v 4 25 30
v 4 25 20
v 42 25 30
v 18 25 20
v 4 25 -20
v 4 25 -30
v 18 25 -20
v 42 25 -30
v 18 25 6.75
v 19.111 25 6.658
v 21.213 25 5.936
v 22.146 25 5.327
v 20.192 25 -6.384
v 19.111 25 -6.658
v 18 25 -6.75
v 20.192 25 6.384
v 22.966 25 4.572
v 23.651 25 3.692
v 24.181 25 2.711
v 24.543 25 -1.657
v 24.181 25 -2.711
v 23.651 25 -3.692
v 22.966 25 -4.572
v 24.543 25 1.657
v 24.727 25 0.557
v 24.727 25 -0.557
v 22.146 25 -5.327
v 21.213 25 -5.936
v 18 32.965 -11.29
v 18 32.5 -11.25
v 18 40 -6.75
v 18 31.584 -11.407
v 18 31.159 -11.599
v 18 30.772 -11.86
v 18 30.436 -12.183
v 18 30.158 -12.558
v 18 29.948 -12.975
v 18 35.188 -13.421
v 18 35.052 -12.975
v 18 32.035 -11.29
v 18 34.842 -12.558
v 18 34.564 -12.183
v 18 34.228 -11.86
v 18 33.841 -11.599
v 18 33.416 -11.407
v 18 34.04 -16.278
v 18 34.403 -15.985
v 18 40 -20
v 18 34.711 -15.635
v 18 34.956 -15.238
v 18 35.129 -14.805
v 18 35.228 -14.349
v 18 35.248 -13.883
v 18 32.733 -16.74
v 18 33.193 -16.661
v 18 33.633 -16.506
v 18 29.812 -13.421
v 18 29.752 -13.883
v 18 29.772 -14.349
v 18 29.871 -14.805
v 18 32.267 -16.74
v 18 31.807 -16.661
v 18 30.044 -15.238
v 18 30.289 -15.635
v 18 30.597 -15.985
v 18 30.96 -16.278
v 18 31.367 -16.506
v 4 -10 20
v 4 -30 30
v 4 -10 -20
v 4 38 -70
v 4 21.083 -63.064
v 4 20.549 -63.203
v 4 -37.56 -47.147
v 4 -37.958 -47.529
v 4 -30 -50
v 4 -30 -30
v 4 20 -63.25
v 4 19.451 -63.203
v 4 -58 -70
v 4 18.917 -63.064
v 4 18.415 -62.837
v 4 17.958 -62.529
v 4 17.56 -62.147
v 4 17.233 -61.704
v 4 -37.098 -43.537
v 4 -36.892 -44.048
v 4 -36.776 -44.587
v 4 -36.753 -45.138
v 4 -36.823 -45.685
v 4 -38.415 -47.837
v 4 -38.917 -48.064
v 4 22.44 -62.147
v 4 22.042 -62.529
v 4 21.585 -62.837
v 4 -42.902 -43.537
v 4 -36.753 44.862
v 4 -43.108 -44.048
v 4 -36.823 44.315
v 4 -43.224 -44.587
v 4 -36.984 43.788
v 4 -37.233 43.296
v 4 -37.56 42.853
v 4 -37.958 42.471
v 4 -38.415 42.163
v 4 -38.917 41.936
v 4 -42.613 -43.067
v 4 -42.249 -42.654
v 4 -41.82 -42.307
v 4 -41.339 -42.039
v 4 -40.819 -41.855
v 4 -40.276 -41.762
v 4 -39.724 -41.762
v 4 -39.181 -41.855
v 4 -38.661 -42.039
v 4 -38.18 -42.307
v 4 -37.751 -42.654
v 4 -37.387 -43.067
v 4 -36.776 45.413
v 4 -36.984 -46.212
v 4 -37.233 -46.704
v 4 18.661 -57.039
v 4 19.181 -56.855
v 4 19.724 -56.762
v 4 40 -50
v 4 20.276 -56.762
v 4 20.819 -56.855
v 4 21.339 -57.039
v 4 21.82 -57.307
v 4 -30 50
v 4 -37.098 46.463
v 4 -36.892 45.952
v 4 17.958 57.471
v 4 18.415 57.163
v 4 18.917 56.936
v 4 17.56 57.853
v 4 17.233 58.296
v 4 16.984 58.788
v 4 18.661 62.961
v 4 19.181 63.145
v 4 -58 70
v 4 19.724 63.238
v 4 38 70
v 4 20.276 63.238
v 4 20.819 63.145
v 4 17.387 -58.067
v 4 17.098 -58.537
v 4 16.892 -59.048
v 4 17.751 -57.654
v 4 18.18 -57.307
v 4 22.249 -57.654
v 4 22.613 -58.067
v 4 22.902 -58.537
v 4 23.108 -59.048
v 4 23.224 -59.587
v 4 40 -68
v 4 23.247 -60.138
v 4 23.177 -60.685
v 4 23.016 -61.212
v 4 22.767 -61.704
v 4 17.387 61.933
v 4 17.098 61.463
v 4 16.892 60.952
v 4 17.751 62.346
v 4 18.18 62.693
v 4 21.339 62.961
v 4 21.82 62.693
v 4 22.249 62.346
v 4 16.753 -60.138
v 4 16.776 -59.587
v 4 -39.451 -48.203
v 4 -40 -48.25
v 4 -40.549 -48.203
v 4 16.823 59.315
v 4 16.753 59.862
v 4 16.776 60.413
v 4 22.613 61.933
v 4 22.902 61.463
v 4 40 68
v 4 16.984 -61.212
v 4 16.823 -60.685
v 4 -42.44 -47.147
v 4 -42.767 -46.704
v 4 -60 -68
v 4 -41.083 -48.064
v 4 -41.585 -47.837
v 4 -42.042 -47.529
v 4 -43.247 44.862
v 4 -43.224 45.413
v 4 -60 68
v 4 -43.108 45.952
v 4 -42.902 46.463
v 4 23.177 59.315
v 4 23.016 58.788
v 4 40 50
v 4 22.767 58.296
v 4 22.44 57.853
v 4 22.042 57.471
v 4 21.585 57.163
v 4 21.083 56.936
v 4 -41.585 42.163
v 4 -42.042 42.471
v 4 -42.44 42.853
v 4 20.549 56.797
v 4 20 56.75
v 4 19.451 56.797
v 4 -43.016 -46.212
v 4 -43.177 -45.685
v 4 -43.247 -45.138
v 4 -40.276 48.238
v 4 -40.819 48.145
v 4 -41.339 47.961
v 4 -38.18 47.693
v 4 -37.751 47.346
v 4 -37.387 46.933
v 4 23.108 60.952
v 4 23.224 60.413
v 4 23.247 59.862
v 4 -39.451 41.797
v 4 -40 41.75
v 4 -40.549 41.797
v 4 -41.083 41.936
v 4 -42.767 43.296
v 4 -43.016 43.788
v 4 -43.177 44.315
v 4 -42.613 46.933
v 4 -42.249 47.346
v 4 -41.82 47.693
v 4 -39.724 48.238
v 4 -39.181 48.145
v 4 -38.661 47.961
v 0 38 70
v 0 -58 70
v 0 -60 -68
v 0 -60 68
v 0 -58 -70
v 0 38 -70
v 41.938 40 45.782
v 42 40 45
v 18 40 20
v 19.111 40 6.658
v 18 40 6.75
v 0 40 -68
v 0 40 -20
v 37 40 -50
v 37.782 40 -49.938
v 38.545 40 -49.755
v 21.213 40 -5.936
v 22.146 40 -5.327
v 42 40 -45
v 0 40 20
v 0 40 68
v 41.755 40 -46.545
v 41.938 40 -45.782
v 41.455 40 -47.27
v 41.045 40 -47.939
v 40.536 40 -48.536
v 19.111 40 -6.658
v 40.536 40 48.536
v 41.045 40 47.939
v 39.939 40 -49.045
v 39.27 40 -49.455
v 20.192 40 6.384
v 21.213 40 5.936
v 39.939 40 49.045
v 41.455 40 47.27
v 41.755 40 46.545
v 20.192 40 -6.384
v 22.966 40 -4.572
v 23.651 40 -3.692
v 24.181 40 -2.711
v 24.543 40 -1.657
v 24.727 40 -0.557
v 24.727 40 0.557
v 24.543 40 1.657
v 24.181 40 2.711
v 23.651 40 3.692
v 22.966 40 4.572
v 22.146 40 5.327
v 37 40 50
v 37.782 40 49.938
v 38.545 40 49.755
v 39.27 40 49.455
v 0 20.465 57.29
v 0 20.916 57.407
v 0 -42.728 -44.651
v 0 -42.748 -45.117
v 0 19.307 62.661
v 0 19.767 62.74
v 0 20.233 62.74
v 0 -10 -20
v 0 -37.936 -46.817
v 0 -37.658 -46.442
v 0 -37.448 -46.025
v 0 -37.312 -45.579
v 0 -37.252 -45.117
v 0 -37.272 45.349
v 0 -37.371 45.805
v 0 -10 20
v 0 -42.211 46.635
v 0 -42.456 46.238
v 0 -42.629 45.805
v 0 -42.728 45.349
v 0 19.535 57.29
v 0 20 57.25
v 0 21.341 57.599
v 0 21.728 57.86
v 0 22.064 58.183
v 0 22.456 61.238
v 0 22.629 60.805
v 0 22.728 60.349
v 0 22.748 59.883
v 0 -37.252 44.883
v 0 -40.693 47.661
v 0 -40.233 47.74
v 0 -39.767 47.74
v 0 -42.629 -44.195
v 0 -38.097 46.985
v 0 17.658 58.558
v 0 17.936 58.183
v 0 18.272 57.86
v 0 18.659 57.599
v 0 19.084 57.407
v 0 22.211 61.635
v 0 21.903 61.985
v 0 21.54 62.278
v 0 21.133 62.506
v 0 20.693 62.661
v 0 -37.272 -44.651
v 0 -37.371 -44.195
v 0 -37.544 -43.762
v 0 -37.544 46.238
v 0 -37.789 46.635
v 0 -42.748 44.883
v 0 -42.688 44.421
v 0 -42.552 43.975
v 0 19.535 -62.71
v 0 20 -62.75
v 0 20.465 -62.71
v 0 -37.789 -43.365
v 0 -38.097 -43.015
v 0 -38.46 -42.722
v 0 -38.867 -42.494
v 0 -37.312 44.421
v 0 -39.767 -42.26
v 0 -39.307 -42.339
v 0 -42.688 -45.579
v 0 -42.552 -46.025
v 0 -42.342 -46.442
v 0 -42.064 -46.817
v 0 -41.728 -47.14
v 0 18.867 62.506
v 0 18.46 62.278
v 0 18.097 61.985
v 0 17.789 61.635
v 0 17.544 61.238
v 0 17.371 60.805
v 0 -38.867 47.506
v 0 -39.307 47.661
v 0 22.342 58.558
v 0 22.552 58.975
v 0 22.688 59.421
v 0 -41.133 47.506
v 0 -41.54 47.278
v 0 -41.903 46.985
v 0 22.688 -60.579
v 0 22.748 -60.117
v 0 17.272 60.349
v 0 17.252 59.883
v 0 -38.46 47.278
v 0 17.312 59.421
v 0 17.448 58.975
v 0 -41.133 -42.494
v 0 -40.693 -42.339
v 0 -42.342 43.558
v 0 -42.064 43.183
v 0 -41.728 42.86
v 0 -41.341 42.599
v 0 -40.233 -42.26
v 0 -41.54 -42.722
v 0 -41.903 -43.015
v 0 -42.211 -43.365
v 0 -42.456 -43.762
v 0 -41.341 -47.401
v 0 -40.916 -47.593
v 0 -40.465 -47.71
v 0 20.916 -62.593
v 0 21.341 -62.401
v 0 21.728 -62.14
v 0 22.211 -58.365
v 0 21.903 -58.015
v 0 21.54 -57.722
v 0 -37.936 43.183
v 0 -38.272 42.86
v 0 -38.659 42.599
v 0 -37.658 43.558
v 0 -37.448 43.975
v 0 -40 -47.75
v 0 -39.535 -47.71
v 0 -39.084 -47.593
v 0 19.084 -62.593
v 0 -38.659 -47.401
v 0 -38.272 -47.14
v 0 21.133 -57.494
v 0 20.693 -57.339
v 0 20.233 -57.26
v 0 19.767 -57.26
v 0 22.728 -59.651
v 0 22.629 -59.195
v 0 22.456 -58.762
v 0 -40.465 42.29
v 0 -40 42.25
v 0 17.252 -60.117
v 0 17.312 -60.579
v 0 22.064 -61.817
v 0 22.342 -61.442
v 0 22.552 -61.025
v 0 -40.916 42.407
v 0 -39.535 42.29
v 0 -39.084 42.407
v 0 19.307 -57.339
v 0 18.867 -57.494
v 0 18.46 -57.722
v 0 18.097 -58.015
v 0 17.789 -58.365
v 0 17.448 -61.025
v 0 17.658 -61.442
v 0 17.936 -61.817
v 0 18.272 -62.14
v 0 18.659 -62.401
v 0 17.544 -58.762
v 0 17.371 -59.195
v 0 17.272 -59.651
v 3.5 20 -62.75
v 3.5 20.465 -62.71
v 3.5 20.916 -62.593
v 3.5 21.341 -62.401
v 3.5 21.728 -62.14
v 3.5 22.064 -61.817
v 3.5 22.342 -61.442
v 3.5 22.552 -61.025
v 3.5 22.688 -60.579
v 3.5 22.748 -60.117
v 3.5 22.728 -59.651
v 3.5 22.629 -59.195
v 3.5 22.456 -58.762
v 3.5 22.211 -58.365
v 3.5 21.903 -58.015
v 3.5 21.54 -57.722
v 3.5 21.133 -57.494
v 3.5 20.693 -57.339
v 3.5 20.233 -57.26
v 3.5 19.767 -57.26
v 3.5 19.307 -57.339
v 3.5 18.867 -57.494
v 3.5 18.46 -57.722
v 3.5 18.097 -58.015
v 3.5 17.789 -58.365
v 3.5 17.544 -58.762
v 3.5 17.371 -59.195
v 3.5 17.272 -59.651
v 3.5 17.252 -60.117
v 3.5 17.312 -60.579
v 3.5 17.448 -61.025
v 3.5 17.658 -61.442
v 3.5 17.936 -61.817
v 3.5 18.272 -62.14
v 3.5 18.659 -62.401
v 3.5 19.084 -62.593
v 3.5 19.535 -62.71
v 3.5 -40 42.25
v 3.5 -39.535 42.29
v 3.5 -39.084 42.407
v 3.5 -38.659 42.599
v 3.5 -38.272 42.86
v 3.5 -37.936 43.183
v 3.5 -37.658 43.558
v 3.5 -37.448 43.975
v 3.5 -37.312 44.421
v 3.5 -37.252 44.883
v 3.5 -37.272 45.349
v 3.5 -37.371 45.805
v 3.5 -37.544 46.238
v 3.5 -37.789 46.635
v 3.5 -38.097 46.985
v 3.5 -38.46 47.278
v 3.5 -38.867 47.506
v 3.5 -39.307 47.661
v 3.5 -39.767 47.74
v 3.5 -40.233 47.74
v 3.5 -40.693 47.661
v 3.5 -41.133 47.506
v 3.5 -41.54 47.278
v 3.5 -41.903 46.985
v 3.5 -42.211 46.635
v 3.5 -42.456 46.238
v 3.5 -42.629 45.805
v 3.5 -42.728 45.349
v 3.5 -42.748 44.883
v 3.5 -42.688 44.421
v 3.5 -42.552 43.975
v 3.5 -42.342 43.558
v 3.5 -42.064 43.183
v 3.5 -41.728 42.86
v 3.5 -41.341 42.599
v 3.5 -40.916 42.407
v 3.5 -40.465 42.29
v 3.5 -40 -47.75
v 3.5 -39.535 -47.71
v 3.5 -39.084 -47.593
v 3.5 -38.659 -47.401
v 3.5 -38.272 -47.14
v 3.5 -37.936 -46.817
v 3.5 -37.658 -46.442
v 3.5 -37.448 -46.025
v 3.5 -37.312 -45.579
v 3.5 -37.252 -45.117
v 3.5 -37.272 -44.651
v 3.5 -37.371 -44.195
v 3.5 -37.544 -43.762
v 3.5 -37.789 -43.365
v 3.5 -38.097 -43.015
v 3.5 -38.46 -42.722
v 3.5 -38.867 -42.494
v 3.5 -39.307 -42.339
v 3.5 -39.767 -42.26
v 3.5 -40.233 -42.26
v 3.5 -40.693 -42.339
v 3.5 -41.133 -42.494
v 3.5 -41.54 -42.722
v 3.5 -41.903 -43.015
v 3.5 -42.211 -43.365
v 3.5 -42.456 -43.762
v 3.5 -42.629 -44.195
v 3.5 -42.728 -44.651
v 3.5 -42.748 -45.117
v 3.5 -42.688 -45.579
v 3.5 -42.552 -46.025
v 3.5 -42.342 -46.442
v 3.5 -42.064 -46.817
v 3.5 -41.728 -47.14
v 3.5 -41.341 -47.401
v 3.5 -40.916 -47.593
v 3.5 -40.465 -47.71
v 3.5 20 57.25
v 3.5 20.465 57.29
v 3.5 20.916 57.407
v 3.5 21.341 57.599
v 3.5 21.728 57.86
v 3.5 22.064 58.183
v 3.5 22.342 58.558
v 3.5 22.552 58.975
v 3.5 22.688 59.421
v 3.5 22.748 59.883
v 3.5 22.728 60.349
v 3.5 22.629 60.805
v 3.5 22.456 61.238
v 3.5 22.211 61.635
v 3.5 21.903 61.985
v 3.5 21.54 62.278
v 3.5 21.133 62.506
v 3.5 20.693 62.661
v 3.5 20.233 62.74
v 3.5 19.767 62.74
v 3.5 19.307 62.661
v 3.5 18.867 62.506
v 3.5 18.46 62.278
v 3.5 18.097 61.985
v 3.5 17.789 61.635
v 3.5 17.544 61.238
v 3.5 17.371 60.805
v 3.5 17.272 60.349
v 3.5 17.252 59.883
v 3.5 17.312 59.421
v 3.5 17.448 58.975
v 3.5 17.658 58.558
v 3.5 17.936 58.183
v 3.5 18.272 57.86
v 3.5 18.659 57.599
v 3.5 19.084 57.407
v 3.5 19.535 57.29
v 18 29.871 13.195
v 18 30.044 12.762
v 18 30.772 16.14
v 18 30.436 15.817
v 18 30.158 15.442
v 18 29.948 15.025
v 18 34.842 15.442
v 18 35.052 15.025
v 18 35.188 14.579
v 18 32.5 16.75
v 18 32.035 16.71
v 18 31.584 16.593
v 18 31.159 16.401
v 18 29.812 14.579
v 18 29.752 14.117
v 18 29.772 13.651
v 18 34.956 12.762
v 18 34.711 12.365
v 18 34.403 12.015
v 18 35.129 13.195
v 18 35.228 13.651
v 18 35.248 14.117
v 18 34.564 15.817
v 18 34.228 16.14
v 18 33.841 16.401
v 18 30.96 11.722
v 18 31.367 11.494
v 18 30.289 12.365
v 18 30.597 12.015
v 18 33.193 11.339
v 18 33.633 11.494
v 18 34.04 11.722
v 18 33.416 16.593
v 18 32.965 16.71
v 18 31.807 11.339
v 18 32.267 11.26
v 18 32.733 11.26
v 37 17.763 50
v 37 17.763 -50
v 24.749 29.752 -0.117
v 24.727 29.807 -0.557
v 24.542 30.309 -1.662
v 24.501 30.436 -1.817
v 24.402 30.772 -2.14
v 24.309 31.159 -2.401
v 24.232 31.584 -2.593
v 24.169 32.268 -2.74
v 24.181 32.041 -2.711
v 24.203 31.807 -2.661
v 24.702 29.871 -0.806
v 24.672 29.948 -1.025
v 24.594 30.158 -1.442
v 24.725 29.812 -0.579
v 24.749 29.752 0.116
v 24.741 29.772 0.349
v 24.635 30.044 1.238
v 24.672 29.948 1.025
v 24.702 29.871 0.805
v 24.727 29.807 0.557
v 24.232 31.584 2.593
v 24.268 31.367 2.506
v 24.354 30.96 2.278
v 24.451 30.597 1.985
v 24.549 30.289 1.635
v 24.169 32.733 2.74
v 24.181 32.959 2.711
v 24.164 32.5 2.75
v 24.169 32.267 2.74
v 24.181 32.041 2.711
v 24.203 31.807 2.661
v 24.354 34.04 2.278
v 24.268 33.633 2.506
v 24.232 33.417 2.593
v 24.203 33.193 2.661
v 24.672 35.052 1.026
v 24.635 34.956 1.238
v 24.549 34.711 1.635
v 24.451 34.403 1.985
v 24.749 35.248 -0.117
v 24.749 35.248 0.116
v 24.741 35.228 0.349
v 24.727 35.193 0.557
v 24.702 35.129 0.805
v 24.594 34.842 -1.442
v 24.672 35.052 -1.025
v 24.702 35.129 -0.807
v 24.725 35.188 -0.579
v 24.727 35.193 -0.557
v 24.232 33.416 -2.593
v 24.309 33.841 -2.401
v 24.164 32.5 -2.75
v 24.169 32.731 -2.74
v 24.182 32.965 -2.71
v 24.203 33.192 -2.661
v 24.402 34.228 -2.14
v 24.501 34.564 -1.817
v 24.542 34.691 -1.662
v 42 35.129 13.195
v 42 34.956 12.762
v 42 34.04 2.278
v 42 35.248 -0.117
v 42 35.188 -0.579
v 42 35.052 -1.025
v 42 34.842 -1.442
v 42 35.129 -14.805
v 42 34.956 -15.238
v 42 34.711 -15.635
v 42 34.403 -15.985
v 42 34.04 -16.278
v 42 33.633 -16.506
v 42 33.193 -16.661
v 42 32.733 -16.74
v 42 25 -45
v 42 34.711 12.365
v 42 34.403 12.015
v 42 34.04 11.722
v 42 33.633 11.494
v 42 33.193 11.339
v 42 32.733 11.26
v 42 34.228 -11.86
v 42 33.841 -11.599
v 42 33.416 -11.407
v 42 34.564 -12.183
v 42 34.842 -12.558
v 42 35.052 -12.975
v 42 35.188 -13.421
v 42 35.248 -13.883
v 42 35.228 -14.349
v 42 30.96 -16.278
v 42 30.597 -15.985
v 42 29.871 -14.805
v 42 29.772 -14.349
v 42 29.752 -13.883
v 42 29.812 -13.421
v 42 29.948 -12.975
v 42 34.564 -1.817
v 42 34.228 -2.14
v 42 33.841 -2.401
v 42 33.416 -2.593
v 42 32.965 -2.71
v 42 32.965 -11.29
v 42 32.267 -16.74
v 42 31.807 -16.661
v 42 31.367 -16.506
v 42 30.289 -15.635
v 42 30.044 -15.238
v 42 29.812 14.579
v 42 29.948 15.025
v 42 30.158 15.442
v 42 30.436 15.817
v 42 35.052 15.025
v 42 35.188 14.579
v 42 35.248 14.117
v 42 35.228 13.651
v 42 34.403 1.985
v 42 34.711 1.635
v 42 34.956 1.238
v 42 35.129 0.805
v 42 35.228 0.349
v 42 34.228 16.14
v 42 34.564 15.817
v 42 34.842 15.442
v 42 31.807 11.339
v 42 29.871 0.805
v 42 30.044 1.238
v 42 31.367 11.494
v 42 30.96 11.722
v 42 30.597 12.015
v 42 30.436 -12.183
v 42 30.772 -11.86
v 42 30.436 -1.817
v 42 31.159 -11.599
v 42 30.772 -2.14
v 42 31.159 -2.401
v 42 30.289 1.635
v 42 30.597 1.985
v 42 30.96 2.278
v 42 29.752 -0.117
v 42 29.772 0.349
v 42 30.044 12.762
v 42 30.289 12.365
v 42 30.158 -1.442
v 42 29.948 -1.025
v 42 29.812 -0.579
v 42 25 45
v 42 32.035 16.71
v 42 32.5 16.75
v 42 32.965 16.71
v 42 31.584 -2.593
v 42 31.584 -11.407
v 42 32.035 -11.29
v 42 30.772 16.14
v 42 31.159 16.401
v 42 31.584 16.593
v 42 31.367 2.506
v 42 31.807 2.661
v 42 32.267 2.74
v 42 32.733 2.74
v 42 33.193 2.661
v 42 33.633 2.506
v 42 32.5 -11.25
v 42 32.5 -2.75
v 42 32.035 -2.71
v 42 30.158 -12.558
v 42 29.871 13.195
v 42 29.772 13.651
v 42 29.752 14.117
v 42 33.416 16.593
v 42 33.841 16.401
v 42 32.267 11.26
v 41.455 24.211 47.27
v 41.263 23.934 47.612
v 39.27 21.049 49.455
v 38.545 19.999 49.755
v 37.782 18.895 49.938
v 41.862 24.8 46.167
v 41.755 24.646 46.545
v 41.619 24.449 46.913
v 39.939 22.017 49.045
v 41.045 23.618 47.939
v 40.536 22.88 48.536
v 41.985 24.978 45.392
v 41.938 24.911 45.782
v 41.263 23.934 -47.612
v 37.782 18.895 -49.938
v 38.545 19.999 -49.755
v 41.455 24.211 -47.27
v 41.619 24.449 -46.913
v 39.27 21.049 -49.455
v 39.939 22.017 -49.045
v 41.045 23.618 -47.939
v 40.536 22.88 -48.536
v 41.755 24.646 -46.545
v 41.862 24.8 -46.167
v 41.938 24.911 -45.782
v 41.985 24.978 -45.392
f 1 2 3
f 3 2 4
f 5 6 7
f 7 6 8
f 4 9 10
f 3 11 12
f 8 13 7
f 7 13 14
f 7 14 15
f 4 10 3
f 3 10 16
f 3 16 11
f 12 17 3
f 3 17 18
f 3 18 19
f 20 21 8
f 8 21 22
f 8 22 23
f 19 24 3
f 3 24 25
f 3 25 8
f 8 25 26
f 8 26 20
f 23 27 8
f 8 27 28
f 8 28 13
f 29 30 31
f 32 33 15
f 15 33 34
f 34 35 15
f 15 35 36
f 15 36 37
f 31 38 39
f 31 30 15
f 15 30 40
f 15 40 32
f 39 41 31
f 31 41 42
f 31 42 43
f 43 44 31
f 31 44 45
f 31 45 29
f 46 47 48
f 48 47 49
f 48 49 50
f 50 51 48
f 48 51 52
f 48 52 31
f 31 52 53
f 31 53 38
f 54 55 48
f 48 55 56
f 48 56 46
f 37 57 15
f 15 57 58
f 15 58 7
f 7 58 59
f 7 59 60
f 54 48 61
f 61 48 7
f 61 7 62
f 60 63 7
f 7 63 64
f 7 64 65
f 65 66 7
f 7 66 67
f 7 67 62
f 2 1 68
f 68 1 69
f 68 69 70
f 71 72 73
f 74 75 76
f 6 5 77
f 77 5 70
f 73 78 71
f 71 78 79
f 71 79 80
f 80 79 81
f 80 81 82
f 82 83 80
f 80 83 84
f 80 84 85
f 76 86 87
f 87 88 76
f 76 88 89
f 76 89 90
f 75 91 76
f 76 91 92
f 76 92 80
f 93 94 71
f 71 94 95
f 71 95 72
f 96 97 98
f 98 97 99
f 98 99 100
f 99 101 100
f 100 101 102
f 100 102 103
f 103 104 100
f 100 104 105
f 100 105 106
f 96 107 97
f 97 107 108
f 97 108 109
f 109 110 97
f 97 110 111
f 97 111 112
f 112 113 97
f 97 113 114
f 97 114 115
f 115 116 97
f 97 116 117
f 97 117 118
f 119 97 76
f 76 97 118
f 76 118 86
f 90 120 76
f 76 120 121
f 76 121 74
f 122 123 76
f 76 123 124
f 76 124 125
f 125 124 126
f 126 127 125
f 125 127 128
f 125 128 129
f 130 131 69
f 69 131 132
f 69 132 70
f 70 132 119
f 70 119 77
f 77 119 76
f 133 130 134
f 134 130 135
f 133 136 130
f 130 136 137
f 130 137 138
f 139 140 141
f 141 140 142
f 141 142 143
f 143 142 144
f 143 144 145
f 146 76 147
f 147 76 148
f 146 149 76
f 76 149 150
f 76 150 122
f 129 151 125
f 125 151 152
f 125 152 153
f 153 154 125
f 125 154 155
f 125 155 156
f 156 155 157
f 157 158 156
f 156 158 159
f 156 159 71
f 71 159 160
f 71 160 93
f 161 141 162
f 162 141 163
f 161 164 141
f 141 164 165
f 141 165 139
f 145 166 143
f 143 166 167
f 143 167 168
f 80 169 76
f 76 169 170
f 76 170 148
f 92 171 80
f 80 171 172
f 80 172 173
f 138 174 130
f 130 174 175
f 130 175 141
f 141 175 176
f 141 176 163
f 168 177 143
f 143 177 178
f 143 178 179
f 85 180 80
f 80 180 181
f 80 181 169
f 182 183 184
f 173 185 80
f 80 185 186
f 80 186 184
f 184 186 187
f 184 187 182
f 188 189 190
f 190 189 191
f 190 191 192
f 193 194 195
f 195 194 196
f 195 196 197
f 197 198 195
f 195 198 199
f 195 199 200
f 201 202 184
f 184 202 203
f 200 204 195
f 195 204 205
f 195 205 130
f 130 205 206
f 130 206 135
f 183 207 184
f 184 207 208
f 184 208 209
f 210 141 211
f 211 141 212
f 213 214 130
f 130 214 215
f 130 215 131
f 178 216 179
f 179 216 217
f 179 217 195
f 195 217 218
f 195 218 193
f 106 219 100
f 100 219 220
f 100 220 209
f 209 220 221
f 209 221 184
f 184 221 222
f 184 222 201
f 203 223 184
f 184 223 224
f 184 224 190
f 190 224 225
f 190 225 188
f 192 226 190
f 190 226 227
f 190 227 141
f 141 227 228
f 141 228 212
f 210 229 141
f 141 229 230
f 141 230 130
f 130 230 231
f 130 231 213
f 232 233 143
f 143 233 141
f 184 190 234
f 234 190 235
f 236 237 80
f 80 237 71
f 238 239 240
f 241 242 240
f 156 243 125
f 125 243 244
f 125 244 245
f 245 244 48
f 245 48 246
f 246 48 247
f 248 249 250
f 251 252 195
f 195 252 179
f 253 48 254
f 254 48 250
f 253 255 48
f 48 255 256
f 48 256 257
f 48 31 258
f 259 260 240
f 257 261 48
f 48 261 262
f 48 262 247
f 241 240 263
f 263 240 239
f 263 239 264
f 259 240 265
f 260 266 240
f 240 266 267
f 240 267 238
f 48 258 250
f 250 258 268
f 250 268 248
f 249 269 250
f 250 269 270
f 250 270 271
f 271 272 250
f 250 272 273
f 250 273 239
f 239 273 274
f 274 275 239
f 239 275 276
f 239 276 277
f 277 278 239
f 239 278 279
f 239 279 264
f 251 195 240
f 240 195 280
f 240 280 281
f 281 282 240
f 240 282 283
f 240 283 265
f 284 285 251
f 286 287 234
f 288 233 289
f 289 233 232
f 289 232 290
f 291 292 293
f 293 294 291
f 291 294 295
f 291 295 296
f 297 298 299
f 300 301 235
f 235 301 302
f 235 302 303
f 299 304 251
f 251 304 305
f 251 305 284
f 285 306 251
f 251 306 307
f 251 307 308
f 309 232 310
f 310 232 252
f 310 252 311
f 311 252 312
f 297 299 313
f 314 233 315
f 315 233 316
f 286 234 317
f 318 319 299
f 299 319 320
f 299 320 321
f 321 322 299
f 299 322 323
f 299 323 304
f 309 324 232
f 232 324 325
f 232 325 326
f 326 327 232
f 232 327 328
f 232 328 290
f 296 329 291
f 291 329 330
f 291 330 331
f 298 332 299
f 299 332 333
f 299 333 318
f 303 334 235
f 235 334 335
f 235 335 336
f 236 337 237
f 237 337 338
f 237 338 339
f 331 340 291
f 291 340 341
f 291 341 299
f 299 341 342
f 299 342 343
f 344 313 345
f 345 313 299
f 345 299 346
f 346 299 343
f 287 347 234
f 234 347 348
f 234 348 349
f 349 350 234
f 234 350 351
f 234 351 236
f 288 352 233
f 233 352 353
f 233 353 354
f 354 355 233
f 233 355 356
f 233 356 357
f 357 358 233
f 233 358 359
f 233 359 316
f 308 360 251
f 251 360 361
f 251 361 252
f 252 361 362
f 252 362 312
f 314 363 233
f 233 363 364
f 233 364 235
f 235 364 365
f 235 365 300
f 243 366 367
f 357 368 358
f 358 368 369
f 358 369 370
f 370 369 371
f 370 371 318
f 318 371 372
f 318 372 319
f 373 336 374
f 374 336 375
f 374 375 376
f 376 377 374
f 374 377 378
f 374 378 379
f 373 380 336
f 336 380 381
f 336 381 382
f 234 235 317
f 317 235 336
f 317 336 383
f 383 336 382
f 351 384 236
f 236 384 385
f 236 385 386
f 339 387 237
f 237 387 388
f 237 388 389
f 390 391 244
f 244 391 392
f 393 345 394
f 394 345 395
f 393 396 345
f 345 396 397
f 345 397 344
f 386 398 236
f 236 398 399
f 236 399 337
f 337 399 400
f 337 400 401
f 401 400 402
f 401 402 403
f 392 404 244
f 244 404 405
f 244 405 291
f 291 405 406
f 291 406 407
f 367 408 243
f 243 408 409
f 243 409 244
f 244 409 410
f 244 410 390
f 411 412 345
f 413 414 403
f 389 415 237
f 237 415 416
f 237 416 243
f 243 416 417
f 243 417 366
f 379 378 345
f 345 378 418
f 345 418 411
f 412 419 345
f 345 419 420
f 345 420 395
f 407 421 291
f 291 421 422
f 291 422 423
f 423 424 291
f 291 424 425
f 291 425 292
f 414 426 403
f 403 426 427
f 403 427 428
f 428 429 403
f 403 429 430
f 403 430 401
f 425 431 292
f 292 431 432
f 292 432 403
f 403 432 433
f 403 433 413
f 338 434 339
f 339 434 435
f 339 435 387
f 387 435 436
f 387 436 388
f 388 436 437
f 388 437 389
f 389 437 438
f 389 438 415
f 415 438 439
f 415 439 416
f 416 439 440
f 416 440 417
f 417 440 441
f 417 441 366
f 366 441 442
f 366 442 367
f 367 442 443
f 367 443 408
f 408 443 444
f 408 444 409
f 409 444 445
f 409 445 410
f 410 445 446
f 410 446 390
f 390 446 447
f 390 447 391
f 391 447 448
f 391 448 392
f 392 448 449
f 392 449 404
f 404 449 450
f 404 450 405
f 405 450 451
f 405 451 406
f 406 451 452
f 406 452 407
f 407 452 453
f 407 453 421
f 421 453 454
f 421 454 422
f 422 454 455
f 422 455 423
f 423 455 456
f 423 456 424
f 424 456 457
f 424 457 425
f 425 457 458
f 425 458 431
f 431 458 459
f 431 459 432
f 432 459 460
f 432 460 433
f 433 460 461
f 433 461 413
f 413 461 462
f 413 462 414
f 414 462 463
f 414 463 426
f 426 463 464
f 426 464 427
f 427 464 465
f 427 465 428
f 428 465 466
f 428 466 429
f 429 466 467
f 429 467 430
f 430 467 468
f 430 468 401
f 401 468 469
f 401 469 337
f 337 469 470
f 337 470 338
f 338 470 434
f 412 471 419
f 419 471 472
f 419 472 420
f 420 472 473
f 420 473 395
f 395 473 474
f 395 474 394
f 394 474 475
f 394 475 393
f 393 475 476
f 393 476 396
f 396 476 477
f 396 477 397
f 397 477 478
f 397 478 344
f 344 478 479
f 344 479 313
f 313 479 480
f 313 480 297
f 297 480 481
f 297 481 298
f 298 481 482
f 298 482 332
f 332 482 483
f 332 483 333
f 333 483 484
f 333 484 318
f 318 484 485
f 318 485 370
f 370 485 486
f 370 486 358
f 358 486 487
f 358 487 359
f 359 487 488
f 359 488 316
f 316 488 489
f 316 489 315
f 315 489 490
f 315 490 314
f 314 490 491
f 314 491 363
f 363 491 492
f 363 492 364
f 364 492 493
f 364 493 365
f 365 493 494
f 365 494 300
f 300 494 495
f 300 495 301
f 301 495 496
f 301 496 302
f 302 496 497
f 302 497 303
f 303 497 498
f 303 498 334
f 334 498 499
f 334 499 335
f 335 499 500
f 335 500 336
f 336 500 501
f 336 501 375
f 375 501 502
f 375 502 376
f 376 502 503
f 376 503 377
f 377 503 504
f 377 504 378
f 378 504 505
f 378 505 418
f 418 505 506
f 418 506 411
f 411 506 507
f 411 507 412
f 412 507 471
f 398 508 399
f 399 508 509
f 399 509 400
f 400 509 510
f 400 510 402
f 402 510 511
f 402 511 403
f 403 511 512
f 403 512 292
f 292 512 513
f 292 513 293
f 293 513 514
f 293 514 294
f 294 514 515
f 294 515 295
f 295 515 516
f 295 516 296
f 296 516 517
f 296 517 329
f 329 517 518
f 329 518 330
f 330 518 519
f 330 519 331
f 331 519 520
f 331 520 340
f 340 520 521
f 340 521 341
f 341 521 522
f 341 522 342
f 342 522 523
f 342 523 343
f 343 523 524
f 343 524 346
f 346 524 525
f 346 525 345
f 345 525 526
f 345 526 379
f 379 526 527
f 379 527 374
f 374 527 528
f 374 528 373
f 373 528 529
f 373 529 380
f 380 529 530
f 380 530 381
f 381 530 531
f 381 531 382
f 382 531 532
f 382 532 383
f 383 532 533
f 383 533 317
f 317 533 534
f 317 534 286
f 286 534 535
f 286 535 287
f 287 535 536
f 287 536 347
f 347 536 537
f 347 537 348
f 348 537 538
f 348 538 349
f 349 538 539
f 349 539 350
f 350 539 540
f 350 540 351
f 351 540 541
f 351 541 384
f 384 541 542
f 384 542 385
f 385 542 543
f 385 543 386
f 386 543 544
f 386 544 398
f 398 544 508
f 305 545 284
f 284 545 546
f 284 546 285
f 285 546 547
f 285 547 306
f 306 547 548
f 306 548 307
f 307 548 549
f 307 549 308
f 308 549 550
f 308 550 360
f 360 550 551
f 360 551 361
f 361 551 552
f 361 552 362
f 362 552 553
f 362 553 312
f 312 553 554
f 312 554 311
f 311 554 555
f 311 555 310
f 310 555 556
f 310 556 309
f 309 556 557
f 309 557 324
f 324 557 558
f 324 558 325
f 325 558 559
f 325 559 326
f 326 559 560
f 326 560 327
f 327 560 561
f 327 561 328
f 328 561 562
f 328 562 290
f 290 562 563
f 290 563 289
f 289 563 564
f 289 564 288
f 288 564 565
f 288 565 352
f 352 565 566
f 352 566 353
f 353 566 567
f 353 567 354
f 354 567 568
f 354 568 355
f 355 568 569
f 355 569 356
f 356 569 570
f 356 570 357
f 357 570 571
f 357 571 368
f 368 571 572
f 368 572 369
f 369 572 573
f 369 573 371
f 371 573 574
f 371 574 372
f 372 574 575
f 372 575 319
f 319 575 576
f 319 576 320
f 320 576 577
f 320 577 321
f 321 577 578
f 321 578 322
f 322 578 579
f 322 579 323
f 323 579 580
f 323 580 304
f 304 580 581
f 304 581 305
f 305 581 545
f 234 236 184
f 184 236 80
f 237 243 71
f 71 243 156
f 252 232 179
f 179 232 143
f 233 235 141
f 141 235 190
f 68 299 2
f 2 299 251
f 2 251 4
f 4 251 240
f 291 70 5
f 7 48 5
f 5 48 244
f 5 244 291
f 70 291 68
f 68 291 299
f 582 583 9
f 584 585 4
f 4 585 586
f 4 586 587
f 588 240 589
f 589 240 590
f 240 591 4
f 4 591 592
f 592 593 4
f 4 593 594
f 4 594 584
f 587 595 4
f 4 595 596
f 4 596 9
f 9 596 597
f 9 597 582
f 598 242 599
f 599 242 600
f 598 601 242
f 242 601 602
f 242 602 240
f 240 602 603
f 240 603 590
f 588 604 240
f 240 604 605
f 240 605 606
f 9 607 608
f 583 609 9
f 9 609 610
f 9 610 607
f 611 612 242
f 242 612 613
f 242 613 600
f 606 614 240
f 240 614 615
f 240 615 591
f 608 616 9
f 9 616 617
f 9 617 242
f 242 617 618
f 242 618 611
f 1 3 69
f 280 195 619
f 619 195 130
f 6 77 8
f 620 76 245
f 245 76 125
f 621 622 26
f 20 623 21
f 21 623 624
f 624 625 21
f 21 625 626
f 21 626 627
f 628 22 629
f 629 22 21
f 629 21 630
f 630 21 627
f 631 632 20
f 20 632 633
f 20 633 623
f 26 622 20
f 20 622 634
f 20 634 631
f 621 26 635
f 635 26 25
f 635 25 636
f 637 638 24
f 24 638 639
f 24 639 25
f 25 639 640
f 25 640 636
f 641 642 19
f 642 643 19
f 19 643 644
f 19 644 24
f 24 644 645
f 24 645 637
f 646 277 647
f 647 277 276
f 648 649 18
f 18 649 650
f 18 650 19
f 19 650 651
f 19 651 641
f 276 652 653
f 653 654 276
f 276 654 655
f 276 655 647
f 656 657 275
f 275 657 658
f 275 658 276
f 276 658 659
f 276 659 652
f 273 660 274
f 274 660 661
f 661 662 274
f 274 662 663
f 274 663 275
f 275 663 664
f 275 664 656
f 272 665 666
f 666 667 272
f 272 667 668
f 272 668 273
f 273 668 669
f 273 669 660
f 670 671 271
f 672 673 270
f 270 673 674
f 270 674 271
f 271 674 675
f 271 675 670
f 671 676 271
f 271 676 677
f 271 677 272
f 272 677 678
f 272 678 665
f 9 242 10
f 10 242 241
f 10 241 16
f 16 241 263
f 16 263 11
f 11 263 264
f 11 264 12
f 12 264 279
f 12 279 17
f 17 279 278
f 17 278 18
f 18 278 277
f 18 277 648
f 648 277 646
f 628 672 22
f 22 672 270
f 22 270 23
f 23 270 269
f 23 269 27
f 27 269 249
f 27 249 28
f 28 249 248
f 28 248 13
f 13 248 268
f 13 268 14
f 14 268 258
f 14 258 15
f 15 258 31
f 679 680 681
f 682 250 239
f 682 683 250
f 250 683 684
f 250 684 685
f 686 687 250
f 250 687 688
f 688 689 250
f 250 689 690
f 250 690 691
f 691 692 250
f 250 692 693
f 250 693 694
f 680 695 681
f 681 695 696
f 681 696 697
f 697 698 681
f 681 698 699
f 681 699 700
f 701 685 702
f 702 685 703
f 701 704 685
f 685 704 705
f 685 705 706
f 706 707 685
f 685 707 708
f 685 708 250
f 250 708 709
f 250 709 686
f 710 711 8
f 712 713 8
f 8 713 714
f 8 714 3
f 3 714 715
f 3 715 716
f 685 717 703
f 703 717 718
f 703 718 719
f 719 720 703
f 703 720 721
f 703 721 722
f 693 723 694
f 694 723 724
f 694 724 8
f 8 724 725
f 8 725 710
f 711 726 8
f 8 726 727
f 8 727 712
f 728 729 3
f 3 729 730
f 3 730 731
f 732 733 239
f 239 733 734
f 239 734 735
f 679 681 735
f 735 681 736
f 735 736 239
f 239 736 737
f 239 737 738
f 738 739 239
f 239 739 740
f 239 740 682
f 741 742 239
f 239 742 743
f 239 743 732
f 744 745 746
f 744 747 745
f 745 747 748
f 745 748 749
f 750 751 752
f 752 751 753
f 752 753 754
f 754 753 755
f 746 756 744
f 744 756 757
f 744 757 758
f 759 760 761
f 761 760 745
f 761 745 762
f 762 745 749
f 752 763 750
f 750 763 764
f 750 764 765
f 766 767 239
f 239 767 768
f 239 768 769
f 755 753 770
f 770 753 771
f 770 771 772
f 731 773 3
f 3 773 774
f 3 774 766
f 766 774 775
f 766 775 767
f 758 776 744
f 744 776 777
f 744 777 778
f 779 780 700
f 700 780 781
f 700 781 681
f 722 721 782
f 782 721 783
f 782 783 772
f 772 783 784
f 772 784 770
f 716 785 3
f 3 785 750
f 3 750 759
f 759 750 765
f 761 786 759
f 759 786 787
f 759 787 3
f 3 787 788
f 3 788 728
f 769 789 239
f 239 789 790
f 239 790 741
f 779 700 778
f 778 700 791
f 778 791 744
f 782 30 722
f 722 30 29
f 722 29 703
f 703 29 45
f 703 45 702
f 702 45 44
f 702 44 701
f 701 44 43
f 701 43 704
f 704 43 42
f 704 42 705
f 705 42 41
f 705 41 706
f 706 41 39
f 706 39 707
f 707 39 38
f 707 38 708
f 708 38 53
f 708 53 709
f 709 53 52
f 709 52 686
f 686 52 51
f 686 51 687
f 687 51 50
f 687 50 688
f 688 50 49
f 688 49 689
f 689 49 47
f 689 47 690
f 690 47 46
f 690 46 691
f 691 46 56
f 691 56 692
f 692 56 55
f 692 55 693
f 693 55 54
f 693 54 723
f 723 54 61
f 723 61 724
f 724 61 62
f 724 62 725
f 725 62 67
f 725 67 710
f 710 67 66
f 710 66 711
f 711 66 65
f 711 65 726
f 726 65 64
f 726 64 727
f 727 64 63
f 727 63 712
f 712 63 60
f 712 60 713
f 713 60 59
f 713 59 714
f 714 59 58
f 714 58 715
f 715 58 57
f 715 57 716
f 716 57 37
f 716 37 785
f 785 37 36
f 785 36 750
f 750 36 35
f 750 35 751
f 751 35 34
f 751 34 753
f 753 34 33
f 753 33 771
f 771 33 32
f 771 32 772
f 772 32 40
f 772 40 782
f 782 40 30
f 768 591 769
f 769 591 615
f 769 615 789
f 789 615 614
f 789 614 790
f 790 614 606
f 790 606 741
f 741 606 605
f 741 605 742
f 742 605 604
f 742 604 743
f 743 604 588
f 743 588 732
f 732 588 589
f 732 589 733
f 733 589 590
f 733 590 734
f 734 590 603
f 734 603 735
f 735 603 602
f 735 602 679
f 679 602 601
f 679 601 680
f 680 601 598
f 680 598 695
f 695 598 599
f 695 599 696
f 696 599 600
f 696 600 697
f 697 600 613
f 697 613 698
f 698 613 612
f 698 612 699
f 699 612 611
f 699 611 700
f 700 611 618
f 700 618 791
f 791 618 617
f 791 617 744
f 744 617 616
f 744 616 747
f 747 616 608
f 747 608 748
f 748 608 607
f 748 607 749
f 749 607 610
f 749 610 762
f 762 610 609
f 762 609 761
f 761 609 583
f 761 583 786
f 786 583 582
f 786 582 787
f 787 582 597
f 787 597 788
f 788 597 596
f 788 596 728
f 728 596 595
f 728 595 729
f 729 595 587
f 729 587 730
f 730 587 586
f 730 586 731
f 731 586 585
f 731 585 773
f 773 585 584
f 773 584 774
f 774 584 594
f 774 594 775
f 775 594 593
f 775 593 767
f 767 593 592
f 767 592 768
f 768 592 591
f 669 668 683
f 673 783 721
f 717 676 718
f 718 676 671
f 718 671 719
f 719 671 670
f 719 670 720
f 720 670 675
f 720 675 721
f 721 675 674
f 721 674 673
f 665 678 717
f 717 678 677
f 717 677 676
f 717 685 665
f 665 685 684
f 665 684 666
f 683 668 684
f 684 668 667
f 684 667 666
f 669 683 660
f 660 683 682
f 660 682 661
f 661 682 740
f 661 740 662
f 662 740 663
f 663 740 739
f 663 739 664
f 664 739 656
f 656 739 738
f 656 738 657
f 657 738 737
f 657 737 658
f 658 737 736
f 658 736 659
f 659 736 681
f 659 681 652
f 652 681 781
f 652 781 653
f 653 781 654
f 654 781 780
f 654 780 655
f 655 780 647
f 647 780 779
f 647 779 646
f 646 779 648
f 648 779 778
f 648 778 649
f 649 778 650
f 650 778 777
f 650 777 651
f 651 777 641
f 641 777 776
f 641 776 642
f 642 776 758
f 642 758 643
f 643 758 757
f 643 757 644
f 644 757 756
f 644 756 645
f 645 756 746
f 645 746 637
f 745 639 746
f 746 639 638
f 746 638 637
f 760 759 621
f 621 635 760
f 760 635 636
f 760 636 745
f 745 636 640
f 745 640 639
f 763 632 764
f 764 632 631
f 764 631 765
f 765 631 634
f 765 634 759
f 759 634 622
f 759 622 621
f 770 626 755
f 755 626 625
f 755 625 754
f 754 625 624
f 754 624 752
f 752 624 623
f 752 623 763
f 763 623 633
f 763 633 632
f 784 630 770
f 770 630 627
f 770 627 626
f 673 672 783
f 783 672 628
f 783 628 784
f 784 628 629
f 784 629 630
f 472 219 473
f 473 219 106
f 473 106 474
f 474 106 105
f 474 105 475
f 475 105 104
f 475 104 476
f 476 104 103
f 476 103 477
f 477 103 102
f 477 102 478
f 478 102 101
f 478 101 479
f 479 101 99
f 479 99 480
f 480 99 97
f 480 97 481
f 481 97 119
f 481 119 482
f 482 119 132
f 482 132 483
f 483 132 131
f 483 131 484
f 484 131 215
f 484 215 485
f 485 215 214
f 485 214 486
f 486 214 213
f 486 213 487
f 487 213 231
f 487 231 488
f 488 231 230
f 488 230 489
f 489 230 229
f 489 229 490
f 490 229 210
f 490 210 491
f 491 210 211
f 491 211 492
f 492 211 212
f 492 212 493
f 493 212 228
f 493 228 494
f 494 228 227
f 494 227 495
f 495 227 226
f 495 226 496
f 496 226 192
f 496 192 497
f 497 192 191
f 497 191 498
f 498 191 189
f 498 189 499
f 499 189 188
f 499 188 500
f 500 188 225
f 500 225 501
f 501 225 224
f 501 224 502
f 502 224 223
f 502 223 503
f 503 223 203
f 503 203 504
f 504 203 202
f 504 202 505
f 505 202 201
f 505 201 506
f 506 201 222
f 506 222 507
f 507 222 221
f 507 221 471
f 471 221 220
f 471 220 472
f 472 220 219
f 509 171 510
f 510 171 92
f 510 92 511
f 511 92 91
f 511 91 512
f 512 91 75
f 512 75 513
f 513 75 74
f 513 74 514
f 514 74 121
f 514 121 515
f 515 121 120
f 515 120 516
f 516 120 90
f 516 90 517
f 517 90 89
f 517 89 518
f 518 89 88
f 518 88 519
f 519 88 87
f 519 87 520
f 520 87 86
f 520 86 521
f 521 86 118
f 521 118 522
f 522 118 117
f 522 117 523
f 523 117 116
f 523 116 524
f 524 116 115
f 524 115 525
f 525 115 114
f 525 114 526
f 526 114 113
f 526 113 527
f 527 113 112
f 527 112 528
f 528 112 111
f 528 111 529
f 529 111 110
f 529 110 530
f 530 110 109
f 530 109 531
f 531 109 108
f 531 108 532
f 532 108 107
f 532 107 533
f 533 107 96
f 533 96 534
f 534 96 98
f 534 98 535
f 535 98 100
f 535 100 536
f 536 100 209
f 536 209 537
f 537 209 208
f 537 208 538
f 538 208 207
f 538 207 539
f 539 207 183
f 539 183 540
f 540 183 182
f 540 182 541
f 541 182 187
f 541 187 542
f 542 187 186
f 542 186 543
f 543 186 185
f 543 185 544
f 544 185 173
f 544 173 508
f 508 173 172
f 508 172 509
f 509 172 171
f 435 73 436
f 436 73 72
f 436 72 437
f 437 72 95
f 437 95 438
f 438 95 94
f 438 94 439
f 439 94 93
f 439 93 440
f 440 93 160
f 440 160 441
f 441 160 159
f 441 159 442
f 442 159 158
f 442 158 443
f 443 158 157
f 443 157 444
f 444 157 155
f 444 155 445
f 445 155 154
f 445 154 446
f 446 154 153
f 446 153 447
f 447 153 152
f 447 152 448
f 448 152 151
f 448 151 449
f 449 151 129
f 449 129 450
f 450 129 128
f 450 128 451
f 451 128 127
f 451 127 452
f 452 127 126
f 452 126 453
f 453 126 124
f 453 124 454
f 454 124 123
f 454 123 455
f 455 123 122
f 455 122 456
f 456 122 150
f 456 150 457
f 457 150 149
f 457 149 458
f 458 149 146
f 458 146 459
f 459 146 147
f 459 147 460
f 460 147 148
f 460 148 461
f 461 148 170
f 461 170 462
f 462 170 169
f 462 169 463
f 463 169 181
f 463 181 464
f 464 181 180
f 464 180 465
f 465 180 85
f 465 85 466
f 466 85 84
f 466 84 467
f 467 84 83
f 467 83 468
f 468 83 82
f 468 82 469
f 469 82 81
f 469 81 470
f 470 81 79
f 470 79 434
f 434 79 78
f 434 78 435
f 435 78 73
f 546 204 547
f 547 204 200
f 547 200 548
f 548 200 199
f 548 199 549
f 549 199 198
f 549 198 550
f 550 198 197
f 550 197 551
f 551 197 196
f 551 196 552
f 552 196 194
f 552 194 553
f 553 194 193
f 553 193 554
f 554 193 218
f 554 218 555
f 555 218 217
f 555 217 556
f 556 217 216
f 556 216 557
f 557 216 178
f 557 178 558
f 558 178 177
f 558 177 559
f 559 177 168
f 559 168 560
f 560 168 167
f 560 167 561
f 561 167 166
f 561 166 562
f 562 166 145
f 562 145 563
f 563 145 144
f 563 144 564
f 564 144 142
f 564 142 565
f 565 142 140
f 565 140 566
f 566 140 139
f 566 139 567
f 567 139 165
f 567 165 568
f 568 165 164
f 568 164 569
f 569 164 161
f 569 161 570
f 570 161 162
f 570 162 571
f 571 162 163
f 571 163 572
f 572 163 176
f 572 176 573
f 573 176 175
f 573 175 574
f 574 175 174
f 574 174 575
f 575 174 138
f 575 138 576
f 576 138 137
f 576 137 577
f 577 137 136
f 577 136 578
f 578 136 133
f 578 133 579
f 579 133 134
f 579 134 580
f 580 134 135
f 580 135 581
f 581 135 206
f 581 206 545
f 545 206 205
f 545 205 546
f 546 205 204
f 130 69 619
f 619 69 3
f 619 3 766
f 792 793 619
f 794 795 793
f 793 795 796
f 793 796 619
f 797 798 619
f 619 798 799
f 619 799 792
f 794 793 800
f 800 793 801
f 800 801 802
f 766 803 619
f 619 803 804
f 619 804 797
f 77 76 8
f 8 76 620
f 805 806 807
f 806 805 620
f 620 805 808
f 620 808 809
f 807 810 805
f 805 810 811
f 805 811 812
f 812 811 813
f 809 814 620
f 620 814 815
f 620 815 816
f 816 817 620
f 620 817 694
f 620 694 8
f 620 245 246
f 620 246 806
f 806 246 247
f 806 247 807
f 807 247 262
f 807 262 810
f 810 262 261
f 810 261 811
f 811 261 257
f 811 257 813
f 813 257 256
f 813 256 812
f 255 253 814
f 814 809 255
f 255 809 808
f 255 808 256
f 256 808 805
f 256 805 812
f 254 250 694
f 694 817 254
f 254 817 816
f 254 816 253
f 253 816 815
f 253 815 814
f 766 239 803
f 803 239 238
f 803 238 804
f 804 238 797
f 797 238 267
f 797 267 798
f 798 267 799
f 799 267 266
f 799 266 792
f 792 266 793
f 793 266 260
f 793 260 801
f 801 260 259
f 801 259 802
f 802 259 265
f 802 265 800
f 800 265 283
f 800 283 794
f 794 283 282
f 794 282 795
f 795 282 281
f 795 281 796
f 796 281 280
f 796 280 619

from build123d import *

# Parameters (mm, degrees)
SKETCH_1_W          = 140
SKETCH_1_H          = 100
EXTRUDE_1_DEPTH     = 4
SKETCH_9_R          = 2.75
CUT_EXTRUDE_3_DEPTH = 8
CHAMFER_2_SIZE      = 2
SKETCH_11_W         = 40
SKETCH_11_H         = 50
CUT_EXTRUDE_5_DEPTH = 5
SKETCH_12_W         = 10
SKETCH_12_H         = 15
EXTRUDE_2_DEPTH     = 14
SKETCH_13_W         = 60
SKETCH_13_H         = 15
EXTRUDE_3_DEPTH     = 14
EXTRUDE_4_DEPTH     = 20
EXTRUDE_5_DEPTH     = 20
SKETCH_16_R         = 6.75
CUT_EXTRUDE_6_DEPTH = 20
EXTRUDE_6_DEPTH     = 10
SKETCH_18_R         = 2.75
CUT_EXTRUDE_7_DEPTH = 96.268042911
SKETCH_19_R         = 2.75
CUT_EXTRUDE_8_DEPTH = 100
CHAMFER_3_SIZE      = 0.5
EXTRUDE_7_DEPTH     = 20
EXTRUDE_8_DEPTH     = 20
FILLET_1_R          = 5


with BuildPart() as part:
    # 草图1 → 凸台-拉伸1 (new body)
    with BuildSketch(Plane(origin=(0, 0, 0), x_dir=(0, 0, -1), z_dir=(1, 0, 0))):
        with Locations((0, -10)):
            Rectangle(SKETCH_1_W, SKETCH_1_H)
    extrude(amount=EXTRUDE_1_DEPTH)

    # 草图9 → 切除-拉伸3 (cut)
    with BuildSketch(Plane(origin=(4, 0, 0), x_dir=(0, 0, -1), z_dir=(1, 0, 0))):
        with Locations((-60, 20)):
            Circle(SKETCH_9_R)
        with Locations((60, 20)):
            Circle(SKETCH_9_R)
        with Locations((-45, -40)):
            Circle(SKETCH_9_R)
        with Locations((45, -40)):
            Circle(SKETCH_9_R)
    extrude(amount=-CUT_EXTRUDE_3_DEPTH, mode=Mode.SUBTRACT)

    # 倒角2
    chamfer_2_edges = [part.edges().sort_by_distance(p)[0] for p in [
        (2, 40, 70),
        (2, 40, -70),
        (2, -60, -70),
        (2, -60, 70),
    ]]
    chamfer(chamfer_2_edges, length=CHAMFER_2_SIZE)

    # 草图11 → 切除-拉伸5 (cut)
    with BuildSketch(Plane(origin=(4, 0, 0), x_dir=(0, 0, -1), z_dir=(1, 0, 0))):
        with Locations((0, 15)):
            Rectangle(SKETCH_11_W, SKETCH_11_H)
    extrude(amount=-CUT_EXTRUDE_5_DEPTH, mode=Mode.SUBTRACT)

    # 草图12 → 凸台-拉伸2 (add)
    with BuildSketch(Plane(origin=(4, 0, 0), x_dir=(0, 0, -1), z_dir=(1, 0, 0))):
        with Locations((-25, 32.5)):
            Rectangle(SKETCH_12_W, SKETCH_12_H)
        with Locations((25, 32.5)):
            Rectangle(SKETCH_12_W, SKETCH_12_H)
    extrude(amount=EXTRUDE_2_DEPTH)

    # 草图13 → 凸台-拉伸3 (add)
    with BuildSketch(Plane(origin=(18, 0, 0), x_dir=(0, 0, -1), z_dir=(1, 0, 0))):
        with Locations((0, 32.5)):
            Rectangle(SKETCH_13_W, SKETCH_13_H)
    extrude(amount=EXTRUDE_3_DEPTH)

    # 草图14 → 凸台-拉伸4 (add)
    with BuildSketch(Plane.XY.offset(30)):
        Polygon((4, 40), (4, -30), (32, 25), (32, 40), align=None)
    extrude(amount=EXTRUDE_4_DEPTH)

    # 草图15 → 凸台-拉伸5 (add)
    with BuildSketch(Plane(origin=(0, 0, -30), x_dir=(-1, 0, 0), z_dir=(0, 0, -1))):
        Polygon((-4, 40), (-32, 40), (-32, 25), (-4, -30), align=None)
    extrude(amount=EXTRUDE_5_DEPTH)

    # 草图16 → 切除-拉伸6 (cut)
    with BuildSketch(Plane(origin=(0, 40, 0), x_dir=(1, 0, 0), z_dir=(0, 1, 0))):
        with Locations((18, 0)):
            Circle(SKETCH_16_R)
    extrude(amount=-CUT_EXTRUDE_6_DEPTH, mode=Mode.SUBTRACT)

    # 草图17 → 凸台-拉伸6 (add)
    with BuildSketch(Plane(origin=(32, 0, 0), x_dir=(0, 0, -1), z_dir=(1, 0, 0))):
        Polygon((50, 40), (-50, 40), (-50, 25), (-30, 25), (30, 25), (50, 25), align=None)
    extrude(amount=EXTRUDE_6_DEPTH)

    # 草图18 → 切除-拉伸7 (cut, through all)
    with BuildSketch(Plane.ZY.offset(-18)):
        with Locations((14, 32.5)):
            Circle(SKETCH_18_R)
        with Locations((-14, 32.5)):
            Circle(SKETCH_18_R)
    extrude(amount=-CUT_EXTRUDE_7_DEPTH, mode=Mode.SUBTRACT)

    # 草图19 → 切除-拉伸8 (cut)
    with BuildSketch(Plane(origin=(42, 0, 0), x_dir=(0, 0, -1), z_dir=(1, 0, 0))):
        with Locations((0, 32.5)):
            Circle(SKETCH_19_R)
    extrude(amount=-CUT_EXTRUDE_8_DEPTH, mode=Mode.SUBTRACT)

    # 倒角3
    chamfer_3_edges = [part.edges().sort_by_distance(p)[0] for p in [
        (4, 20, 62.75),
        (4, -40, -42.25),
        (4, -40, 47.75),
        (4, 20, -57.25),
    ]]
    chamfer(chamfer_3_edges, length=CHAMFER_3_SIZE)

    # 草图20 → 凸台-拉伸7 (add)
    with BuildSketch(Plane.XY.offset(50)):
        Polygon((42, 25), (4, -30), (32, 25), align=None)
    extrude(amount=-EXTRUDE_7_DEPTH)

    # 草图21 → 凸台-拉伸8 (add)
    with BuildSketch(Plane(origin=(0, 0, -50), x_dir=(-1, 0, 0), z_dir=(0, 0, -1))):
        Polygon((-42, 25), (-4, -30), (-32, 25), align=None)
    extrude(amount=-EXTRUDE_8_DEPTH)

    # 圆角1
    fillet_1_edges = [part.edges().sort_by_distance(p)[0] for p in [
        (42, 32.5, -50),
        (42, 32.5, 50),
    ]]
    fillet(fillet_1_edges, radius=FILLET_1_R)


solid = part.part
